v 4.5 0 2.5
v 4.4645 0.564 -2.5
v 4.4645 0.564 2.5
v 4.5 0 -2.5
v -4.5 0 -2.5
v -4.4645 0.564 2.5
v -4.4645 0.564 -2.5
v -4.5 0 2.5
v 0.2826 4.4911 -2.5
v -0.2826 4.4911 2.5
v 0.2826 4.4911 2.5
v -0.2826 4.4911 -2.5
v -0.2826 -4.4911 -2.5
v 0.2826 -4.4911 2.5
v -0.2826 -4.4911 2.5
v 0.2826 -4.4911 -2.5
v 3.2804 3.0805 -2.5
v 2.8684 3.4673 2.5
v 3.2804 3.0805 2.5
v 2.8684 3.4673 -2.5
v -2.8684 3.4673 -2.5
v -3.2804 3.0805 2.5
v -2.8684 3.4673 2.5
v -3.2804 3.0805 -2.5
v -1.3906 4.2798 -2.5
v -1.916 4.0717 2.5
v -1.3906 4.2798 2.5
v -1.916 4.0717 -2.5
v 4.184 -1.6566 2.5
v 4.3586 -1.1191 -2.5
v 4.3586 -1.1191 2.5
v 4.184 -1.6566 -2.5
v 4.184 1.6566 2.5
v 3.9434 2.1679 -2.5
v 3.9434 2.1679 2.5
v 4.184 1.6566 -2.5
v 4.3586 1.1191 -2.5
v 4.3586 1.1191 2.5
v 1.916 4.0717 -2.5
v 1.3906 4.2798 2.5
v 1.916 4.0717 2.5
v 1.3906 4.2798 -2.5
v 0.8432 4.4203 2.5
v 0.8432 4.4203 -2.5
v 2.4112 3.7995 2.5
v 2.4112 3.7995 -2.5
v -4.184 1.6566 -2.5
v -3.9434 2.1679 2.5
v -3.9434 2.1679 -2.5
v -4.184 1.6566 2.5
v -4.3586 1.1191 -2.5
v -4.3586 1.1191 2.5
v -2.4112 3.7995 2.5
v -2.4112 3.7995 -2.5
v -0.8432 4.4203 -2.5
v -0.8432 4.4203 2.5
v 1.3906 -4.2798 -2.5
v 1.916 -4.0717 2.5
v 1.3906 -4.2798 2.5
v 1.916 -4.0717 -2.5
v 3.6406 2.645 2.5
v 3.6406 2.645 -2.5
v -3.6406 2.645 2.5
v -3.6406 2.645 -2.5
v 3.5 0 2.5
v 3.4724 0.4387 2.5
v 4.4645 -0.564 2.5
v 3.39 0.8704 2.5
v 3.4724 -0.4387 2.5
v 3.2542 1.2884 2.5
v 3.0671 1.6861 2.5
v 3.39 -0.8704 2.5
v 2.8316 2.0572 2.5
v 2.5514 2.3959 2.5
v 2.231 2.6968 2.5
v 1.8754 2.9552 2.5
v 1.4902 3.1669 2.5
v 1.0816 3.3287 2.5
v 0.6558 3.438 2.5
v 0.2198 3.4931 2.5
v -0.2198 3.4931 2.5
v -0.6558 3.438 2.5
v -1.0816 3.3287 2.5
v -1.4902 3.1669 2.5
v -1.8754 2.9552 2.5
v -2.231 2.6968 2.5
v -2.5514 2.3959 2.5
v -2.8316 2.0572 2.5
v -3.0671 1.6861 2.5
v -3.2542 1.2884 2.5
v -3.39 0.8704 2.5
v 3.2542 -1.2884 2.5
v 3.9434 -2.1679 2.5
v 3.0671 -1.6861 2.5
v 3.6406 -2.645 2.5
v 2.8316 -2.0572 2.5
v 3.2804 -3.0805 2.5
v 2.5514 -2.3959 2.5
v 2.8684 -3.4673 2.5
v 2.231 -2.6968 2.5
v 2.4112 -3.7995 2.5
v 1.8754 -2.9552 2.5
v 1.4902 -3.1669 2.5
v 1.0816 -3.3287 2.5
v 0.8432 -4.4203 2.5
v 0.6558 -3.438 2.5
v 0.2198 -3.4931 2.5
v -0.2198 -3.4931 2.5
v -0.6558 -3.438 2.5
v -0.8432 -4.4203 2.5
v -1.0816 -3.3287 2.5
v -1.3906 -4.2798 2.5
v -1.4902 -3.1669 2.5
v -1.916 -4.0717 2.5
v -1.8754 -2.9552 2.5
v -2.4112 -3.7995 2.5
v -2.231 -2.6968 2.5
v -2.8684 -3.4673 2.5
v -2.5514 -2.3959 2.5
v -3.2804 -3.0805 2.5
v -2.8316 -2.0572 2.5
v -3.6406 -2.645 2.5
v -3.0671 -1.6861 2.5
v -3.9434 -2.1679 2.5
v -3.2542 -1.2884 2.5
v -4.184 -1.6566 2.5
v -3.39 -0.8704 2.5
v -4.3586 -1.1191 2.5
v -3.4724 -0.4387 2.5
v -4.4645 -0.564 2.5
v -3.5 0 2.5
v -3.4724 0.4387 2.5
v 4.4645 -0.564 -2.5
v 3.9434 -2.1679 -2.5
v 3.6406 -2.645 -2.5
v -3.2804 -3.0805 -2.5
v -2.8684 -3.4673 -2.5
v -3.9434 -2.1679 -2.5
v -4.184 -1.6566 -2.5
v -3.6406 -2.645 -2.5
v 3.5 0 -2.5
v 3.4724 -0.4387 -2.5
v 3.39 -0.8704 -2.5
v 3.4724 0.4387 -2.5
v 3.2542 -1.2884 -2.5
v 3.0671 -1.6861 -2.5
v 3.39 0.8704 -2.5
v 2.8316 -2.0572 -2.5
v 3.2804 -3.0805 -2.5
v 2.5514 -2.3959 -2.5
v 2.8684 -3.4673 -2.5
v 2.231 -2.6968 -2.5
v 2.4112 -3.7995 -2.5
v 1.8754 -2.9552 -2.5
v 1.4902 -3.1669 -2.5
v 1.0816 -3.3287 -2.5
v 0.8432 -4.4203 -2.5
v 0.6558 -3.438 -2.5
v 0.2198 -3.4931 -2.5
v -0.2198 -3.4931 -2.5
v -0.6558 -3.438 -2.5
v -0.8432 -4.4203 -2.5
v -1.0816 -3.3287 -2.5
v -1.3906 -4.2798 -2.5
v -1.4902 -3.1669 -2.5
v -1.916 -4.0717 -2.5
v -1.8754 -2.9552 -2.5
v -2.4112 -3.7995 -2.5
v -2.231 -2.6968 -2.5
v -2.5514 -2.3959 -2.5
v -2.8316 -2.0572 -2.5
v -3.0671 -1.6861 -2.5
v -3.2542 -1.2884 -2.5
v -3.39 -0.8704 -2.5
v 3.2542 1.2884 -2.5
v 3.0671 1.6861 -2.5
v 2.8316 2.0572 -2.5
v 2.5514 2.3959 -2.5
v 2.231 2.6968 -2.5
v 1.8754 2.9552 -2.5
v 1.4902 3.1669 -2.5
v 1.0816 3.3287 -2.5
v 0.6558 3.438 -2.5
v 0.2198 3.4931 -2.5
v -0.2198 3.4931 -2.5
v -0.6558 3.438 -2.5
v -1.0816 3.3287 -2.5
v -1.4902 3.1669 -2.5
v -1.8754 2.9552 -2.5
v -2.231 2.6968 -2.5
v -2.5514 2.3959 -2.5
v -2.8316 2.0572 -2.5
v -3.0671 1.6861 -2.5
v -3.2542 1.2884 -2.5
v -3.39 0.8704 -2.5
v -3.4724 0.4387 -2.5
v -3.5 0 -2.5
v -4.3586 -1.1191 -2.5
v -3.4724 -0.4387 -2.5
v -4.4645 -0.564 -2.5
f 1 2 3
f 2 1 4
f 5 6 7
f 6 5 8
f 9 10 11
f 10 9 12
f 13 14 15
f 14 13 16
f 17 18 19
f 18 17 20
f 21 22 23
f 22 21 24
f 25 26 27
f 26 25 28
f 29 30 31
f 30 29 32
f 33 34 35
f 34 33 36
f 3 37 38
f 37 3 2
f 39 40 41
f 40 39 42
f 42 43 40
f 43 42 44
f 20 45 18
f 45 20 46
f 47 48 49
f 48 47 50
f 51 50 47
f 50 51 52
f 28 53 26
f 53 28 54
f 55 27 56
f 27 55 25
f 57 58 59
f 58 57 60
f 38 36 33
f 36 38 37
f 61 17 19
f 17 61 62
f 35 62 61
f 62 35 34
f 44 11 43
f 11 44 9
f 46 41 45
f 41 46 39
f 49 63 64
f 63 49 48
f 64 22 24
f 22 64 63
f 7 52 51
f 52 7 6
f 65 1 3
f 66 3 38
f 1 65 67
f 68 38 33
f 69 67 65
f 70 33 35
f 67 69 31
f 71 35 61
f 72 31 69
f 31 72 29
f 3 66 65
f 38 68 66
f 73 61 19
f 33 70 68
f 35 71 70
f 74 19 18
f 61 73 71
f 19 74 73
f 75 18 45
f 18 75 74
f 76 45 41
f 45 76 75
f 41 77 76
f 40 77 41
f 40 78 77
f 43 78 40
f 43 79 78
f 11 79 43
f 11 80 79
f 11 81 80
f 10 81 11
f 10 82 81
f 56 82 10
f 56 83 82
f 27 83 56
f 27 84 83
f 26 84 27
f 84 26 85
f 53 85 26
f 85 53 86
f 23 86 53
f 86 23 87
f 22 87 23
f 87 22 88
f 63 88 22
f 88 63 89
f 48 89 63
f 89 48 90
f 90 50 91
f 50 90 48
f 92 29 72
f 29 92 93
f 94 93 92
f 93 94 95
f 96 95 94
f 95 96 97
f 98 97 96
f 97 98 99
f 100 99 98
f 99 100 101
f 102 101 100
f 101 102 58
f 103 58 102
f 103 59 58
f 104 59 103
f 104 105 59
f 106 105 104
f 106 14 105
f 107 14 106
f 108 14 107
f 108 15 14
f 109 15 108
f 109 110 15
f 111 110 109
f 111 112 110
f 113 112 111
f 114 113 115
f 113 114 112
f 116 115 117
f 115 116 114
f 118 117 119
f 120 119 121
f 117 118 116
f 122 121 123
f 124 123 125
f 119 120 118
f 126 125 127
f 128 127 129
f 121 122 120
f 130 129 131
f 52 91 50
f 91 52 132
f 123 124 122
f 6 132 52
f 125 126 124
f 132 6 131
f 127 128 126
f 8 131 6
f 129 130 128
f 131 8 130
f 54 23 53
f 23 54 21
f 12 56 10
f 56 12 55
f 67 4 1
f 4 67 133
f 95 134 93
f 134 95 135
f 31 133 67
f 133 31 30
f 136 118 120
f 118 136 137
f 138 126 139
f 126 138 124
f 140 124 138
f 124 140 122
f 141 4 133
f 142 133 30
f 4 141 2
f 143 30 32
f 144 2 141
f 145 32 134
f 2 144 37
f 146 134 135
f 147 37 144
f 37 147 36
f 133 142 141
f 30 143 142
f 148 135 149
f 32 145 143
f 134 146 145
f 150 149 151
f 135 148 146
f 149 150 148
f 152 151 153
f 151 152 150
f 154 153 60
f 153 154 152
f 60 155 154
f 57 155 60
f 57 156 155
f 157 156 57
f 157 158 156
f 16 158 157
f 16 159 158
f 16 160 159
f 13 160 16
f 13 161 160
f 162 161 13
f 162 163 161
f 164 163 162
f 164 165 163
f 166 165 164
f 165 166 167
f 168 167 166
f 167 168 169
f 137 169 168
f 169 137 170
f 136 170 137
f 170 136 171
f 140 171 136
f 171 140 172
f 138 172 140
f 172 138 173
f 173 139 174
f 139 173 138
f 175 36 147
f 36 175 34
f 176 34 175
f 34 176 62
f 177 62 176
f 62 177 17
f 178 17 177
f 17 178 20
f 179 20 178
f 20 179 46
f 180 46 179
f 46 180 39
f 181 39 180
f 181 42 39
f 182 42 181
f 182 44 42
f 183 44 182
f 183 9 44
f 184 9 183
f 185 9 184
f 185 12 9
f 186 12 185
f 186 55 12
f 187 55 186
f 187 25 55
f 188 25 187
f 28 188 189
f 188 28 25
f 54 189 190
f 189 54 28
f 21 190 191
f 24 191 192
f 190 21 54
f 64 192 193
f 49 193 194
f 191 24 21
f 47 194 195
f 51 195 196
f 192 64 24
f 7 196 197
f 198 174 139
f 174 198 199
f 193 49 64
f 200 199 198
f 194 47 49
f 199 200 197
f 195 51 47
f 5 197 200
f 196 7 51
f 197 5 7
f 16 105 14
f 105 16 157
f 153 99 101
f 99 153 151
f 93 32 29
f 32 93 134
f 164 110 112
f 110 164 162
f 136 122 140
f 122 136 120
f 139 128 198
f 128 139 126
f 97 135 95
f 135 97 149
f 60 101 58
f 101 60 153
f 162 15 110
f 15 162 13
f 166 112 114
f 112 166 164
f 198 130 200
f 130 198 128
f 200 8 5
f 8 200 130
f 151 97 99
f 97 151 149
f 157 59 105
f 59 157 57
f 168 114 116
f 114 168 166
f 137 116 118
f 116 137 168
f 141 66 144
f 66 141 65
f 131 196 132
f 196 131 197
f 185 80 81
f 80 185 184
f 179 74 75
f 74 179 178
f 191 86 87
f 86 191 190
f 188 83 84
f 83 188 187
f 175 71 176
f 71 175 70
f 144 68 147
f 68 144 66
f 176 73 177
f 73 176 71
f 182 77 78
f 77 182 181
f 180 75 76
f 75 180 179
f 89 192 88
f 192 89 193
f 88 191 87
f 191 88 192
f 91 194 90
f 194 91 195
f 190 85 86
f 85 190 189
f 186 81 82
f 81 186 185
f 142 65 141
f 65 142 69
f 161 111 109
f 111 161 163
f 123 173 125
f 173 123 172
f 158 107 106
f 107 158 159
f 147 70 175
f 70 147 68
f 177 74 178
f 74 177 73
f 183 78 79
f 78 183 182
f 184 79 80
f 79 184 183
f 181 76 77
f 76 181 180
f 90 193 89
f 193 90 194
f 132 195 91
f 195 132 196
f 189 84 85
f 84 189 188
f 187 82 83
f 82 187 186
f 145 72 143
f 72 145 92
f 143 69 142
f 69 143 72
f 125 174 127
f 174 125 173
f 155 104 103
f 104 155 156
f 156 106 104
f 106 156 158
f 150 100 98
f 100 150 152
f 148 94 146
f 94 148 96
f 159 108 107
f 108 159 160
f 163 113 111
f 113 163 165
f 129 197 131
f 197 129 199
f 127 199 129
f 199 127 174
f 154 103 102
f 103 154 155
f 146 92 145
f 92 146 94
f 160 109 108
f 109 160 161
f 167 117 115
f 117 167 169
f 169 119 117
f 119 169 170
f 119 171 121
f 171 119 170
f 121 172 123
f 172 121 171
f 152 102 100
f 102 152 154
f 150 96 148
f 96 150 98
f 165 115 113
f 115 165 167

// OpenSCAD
$fn = 50;


difference() {
	union() {
		translate(v = [0, 0, -2.5000000000]) {
			cylinder(h = 5, r = 4.5000000000);
		}
	}
	union() {
		translate(v = [0, 0, -100.0000000000]) {
			cylinder(h = 200, r = 3.5000000000);
		}
	}
}
